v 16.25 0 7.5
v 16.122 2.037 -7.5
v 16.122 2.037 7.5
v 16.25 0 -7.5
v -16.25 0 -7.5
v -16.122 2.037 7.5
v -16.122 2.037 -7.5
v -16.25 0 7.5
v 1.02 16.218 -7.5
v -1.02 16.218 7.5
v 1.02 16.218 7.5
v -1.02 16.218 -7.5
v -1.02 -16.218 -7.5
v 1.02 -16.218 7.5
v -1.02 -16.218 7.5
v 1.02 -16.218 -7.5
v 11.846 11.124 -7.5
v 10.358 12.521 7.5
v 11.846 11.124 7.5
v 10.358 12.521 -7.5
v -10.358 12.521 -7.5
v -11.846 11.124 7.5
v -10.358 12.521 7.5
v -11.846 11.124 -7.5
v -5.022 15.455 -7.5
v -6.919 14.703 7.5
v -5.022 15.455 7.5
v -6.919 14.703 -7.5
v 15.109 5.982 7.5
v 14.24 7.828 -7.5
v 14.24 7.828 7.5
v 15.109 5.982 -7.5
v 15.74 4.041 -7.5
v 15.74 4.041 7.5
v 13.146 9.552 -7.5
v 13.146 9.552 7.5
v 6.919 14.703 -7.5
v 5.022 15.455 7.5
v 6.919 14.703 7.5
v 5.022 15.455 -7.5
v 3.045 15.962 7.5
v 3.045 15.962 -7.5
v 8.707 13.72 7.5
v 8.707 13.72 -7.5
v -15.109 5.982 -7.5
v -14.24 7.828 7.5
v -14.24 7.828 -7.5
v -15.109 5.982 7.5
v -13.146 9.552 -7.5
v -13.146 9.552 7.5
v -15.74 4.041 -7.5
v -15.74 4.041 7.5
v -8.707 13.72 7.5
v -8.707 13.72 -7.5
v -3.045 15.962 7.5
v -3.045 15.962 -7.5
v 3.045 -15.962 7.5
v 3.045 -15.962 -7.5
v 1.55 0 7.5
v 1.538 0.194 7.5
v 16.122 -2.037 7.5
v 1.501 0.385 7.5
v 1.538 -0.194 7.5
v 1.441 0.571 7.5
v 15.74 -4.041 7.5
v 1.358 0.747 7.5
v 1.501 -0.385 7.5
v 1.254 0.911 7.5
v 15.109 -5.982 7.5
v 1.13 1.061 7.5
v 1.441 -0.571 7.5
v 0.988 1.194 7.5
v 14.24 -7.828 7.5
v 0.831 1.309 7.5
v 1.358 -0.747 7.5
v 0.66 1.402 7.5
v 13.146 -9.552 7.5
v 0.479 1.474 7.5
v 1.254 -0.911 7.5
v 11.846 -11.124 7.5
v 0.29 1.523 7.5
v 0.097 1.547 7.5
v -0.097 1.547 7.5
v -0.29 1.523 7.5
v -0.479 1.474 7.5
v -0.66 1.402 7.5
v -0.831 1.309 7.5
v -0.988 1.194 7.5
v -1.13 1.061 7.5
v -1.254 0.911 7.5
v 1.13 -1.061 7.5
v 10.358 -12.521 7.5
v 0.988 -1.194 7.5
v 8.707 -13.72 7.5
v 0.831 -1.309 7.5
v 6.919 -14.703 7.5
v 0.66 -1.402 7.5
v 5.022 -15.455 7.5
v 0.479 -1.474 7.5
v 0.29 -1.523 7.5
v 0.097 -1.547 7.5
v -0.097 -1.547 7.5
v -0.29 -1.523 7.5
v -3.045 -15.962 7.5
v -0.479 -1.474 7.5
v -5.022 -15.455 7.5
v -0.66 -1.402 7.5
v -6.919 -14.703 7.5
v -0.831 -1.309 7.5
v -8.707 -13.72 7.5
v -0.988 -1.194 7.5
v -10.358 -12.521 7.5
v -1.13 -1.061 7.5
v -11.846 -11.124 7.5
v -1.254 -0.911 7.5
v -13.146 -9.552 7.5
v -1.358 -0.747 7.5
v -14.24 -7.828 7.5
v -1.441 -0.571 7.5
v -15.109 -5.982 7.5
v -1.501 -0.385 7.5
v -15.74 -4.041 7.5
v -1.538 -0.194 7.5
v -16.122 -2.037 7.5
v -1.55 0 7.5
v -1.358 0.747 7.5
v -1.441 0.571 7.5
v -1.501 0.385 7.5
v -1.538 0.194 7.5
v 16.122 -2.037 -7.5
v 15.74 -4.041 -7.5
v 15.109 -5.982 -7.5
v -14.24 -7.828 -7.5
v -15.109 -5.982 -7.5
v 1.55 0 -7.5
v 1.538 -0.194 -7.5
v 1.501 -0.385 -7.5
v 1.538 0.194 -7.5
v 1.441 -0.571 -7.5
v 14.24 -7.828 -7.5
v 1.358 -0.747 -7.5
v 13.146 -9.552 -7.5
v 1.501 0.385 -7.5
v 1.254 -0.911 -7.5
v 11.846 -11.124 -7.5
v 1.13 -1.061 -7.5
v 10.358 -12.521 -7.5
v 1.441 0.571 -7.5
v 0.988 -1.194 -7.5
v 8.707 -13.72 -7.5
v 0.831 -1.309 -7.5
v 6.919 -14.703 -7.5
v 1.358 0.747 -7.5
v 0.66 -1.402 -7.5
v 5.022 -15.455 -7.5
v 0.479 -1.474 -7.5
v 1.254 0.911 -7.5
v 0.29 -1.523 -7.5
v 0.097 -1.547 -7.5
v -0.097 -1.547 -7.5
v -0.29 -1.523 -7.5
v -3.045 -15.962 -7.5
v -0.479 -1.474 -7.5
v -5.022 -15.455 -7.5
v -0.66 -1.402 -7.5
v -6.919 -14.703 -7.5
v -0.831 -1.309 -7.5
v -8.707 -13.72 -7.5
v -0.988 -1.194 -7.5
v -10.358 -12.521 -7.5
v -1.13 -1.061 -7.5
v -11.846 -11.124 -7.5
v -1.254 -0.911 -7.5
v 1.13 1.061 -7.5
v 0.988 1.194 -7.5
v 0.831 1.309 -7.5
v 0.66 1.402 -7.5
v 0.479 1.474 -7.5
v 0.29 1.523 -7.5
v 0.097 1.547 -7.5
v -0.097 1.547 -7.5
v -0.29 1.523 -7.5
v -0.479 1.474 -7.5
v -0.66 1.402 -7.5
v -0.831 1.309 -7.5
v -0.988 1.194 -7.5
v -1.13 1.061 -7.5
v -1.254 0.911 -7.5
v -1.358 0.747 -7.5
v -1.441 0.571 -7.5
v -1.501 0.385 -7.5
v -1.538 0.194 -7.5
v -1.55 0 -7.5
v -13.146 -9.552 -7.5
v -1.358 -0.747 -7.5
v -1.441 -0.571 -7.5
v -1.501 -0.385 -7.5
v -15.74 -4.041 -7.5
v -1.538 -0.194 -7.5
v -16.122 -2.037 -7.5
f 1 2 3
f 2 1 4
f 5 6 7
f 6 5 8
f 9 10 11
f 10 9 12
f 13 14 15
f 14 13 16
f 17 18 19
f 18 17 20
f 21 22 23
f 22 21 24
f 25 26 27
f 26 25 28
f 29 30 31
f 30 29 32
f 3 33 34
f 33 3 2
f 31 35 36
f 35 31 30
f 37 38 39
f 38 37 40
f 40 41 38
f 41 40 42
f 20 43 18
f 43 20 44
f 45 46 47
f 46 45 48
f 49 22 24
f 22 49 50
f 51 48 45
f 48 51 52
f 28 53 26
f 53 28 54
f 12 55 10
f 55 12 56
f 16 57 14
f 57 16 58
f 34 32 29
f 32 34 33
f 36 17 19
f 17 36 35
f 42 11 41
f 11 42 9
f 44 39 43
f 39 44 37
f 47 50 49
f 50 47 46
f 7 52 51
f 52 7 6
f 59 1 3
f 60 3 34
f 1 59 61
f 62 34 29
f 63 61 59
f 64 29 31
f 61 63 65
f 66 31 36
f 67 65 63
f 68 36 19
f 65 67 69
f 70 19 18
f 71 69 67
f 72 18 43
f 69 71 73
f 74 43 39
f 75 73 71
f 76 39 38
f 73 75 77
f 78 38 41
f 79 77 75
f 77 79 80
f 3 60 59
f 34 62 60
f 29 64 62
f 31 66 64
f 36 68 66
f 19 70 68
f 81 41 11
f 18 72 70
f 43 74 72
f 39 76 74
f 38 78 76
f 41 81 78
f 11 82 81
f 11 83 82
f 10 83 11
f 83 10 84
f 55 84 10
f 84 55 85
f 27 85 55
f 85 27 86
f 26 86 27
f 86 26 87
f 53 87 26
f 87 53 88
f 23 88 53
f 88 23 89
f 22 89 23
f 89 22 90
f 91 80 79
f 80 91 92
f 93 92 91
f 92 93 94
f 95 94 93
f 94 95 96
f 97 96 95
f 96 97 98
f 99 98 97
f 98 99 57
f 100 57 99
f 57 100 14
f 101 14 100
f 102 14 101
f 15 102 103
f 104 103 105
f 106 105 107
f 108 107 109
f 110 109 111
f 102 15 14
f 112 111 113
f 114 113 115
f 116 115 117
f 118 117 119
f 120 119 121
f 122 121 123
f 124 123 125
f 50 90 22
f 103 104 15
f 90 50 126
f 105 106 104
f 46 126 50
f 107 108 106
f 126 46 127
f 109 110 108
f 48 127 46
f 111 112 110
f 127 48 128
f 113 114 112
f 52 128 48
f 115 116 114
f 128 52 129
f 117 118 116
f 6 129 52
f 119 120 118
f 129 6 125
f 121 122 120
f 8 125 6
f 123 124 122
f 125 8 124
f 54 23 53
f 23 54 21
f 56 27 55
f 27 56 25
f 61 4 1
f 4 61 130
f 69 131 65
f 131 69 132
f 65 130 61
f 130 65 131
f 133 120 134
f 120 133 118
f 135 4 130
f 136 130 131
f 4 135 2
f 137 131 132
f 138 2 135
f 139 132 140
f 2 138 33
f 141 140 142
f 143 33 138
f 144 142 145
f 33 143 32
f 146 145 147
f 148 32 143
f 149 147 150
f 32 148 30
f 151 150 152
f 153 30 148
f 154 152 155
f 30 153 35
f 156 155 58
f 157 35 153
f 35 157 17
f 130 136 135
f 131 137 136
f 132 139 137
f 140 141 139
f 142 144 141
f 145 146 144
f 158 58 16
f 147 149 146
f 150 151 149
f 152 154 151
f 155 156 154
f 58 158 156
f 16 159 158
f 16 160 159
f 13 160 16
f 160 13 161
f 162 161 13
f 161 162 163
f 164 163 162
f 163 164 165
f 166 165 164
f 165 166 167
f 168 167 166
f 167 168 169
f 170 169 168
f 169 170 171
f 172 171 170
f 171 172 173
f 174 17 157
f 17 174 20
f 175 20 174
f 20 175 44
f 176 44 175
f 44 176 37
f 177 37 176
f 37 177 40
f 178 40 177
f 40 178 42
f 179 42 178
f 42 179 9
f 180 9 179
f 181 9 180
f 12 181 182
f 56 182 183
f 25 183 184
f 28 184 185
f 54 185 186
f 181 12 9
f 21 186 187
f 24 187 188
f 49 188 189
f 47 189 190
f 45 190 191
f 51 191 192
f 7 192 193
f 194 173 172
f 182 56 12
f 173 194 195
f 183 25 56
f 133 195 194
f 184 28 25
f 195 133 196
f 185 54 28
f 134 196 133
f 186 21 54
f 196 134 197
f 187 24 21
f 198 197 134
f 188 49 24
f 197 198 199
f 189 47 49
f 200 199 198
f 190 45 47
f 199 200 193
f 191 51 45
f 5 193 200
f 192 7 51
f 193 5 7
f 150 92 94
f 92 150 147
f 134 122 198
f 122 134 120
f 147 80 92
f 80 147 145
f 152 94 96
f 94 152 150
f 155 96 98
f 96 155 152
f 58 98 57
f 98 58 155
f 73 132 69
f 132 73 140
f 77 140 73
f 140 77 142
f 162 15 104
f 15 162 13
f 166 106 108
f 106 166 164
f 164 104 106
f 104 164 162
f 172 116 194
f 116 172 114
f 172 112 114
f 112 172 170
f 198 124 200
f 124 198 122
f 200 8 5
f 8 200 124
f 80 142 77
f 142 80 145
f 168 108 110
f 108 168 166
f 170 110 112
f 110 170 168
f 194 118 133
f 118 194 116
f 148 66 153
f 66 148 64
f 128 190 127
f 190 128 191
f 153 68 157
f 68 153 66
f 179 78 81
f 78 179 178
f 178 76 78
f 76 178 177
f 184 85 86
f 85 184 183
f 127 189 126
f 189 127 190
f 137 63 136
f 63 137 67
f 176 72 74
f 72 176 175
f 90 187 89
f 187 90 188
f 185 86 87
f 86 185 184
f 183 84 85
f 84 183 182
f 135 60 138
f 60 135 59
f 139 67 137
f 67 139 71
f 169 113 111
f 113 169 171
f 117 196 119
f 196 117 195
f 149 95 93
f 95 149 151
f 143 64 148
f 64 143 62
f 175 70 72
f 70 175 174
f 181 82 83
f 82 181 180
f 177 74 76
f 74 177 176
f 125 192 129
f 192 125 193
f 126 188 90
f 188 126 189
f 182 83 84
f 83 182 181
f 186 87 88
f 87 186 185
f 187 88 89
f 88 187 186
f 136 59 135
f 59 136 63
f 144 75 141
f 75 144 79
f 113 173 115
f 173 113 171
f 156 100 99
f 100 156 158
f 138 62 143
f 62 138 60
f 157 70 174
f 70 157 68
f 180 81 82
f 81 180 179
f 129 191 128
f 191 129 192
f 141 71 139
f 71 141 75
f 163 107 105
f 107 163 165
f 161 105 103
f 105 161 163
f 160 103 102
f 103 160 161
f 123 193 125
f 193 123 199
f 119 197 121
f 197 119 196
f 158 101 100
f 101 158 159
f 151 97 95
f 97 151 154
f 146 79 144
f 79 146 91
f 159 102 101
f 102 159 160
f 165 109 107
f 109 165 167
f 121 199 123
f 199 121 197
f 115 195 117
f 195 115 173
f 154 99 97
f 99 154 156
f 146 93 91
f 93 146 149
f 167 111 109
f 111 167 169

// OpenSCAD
$fn = 50;


difference() {
	union() {
		translate(v = [0, 0, -7.5000000000]) {
			cylinder(h = 15, r = 16.2500000000);
		}
	}
	union() {
		translate(v = [0, 0, -100.0000000000]) {
			cylinder(h = 200, r = 1.5500000000);
		}
	}
}
